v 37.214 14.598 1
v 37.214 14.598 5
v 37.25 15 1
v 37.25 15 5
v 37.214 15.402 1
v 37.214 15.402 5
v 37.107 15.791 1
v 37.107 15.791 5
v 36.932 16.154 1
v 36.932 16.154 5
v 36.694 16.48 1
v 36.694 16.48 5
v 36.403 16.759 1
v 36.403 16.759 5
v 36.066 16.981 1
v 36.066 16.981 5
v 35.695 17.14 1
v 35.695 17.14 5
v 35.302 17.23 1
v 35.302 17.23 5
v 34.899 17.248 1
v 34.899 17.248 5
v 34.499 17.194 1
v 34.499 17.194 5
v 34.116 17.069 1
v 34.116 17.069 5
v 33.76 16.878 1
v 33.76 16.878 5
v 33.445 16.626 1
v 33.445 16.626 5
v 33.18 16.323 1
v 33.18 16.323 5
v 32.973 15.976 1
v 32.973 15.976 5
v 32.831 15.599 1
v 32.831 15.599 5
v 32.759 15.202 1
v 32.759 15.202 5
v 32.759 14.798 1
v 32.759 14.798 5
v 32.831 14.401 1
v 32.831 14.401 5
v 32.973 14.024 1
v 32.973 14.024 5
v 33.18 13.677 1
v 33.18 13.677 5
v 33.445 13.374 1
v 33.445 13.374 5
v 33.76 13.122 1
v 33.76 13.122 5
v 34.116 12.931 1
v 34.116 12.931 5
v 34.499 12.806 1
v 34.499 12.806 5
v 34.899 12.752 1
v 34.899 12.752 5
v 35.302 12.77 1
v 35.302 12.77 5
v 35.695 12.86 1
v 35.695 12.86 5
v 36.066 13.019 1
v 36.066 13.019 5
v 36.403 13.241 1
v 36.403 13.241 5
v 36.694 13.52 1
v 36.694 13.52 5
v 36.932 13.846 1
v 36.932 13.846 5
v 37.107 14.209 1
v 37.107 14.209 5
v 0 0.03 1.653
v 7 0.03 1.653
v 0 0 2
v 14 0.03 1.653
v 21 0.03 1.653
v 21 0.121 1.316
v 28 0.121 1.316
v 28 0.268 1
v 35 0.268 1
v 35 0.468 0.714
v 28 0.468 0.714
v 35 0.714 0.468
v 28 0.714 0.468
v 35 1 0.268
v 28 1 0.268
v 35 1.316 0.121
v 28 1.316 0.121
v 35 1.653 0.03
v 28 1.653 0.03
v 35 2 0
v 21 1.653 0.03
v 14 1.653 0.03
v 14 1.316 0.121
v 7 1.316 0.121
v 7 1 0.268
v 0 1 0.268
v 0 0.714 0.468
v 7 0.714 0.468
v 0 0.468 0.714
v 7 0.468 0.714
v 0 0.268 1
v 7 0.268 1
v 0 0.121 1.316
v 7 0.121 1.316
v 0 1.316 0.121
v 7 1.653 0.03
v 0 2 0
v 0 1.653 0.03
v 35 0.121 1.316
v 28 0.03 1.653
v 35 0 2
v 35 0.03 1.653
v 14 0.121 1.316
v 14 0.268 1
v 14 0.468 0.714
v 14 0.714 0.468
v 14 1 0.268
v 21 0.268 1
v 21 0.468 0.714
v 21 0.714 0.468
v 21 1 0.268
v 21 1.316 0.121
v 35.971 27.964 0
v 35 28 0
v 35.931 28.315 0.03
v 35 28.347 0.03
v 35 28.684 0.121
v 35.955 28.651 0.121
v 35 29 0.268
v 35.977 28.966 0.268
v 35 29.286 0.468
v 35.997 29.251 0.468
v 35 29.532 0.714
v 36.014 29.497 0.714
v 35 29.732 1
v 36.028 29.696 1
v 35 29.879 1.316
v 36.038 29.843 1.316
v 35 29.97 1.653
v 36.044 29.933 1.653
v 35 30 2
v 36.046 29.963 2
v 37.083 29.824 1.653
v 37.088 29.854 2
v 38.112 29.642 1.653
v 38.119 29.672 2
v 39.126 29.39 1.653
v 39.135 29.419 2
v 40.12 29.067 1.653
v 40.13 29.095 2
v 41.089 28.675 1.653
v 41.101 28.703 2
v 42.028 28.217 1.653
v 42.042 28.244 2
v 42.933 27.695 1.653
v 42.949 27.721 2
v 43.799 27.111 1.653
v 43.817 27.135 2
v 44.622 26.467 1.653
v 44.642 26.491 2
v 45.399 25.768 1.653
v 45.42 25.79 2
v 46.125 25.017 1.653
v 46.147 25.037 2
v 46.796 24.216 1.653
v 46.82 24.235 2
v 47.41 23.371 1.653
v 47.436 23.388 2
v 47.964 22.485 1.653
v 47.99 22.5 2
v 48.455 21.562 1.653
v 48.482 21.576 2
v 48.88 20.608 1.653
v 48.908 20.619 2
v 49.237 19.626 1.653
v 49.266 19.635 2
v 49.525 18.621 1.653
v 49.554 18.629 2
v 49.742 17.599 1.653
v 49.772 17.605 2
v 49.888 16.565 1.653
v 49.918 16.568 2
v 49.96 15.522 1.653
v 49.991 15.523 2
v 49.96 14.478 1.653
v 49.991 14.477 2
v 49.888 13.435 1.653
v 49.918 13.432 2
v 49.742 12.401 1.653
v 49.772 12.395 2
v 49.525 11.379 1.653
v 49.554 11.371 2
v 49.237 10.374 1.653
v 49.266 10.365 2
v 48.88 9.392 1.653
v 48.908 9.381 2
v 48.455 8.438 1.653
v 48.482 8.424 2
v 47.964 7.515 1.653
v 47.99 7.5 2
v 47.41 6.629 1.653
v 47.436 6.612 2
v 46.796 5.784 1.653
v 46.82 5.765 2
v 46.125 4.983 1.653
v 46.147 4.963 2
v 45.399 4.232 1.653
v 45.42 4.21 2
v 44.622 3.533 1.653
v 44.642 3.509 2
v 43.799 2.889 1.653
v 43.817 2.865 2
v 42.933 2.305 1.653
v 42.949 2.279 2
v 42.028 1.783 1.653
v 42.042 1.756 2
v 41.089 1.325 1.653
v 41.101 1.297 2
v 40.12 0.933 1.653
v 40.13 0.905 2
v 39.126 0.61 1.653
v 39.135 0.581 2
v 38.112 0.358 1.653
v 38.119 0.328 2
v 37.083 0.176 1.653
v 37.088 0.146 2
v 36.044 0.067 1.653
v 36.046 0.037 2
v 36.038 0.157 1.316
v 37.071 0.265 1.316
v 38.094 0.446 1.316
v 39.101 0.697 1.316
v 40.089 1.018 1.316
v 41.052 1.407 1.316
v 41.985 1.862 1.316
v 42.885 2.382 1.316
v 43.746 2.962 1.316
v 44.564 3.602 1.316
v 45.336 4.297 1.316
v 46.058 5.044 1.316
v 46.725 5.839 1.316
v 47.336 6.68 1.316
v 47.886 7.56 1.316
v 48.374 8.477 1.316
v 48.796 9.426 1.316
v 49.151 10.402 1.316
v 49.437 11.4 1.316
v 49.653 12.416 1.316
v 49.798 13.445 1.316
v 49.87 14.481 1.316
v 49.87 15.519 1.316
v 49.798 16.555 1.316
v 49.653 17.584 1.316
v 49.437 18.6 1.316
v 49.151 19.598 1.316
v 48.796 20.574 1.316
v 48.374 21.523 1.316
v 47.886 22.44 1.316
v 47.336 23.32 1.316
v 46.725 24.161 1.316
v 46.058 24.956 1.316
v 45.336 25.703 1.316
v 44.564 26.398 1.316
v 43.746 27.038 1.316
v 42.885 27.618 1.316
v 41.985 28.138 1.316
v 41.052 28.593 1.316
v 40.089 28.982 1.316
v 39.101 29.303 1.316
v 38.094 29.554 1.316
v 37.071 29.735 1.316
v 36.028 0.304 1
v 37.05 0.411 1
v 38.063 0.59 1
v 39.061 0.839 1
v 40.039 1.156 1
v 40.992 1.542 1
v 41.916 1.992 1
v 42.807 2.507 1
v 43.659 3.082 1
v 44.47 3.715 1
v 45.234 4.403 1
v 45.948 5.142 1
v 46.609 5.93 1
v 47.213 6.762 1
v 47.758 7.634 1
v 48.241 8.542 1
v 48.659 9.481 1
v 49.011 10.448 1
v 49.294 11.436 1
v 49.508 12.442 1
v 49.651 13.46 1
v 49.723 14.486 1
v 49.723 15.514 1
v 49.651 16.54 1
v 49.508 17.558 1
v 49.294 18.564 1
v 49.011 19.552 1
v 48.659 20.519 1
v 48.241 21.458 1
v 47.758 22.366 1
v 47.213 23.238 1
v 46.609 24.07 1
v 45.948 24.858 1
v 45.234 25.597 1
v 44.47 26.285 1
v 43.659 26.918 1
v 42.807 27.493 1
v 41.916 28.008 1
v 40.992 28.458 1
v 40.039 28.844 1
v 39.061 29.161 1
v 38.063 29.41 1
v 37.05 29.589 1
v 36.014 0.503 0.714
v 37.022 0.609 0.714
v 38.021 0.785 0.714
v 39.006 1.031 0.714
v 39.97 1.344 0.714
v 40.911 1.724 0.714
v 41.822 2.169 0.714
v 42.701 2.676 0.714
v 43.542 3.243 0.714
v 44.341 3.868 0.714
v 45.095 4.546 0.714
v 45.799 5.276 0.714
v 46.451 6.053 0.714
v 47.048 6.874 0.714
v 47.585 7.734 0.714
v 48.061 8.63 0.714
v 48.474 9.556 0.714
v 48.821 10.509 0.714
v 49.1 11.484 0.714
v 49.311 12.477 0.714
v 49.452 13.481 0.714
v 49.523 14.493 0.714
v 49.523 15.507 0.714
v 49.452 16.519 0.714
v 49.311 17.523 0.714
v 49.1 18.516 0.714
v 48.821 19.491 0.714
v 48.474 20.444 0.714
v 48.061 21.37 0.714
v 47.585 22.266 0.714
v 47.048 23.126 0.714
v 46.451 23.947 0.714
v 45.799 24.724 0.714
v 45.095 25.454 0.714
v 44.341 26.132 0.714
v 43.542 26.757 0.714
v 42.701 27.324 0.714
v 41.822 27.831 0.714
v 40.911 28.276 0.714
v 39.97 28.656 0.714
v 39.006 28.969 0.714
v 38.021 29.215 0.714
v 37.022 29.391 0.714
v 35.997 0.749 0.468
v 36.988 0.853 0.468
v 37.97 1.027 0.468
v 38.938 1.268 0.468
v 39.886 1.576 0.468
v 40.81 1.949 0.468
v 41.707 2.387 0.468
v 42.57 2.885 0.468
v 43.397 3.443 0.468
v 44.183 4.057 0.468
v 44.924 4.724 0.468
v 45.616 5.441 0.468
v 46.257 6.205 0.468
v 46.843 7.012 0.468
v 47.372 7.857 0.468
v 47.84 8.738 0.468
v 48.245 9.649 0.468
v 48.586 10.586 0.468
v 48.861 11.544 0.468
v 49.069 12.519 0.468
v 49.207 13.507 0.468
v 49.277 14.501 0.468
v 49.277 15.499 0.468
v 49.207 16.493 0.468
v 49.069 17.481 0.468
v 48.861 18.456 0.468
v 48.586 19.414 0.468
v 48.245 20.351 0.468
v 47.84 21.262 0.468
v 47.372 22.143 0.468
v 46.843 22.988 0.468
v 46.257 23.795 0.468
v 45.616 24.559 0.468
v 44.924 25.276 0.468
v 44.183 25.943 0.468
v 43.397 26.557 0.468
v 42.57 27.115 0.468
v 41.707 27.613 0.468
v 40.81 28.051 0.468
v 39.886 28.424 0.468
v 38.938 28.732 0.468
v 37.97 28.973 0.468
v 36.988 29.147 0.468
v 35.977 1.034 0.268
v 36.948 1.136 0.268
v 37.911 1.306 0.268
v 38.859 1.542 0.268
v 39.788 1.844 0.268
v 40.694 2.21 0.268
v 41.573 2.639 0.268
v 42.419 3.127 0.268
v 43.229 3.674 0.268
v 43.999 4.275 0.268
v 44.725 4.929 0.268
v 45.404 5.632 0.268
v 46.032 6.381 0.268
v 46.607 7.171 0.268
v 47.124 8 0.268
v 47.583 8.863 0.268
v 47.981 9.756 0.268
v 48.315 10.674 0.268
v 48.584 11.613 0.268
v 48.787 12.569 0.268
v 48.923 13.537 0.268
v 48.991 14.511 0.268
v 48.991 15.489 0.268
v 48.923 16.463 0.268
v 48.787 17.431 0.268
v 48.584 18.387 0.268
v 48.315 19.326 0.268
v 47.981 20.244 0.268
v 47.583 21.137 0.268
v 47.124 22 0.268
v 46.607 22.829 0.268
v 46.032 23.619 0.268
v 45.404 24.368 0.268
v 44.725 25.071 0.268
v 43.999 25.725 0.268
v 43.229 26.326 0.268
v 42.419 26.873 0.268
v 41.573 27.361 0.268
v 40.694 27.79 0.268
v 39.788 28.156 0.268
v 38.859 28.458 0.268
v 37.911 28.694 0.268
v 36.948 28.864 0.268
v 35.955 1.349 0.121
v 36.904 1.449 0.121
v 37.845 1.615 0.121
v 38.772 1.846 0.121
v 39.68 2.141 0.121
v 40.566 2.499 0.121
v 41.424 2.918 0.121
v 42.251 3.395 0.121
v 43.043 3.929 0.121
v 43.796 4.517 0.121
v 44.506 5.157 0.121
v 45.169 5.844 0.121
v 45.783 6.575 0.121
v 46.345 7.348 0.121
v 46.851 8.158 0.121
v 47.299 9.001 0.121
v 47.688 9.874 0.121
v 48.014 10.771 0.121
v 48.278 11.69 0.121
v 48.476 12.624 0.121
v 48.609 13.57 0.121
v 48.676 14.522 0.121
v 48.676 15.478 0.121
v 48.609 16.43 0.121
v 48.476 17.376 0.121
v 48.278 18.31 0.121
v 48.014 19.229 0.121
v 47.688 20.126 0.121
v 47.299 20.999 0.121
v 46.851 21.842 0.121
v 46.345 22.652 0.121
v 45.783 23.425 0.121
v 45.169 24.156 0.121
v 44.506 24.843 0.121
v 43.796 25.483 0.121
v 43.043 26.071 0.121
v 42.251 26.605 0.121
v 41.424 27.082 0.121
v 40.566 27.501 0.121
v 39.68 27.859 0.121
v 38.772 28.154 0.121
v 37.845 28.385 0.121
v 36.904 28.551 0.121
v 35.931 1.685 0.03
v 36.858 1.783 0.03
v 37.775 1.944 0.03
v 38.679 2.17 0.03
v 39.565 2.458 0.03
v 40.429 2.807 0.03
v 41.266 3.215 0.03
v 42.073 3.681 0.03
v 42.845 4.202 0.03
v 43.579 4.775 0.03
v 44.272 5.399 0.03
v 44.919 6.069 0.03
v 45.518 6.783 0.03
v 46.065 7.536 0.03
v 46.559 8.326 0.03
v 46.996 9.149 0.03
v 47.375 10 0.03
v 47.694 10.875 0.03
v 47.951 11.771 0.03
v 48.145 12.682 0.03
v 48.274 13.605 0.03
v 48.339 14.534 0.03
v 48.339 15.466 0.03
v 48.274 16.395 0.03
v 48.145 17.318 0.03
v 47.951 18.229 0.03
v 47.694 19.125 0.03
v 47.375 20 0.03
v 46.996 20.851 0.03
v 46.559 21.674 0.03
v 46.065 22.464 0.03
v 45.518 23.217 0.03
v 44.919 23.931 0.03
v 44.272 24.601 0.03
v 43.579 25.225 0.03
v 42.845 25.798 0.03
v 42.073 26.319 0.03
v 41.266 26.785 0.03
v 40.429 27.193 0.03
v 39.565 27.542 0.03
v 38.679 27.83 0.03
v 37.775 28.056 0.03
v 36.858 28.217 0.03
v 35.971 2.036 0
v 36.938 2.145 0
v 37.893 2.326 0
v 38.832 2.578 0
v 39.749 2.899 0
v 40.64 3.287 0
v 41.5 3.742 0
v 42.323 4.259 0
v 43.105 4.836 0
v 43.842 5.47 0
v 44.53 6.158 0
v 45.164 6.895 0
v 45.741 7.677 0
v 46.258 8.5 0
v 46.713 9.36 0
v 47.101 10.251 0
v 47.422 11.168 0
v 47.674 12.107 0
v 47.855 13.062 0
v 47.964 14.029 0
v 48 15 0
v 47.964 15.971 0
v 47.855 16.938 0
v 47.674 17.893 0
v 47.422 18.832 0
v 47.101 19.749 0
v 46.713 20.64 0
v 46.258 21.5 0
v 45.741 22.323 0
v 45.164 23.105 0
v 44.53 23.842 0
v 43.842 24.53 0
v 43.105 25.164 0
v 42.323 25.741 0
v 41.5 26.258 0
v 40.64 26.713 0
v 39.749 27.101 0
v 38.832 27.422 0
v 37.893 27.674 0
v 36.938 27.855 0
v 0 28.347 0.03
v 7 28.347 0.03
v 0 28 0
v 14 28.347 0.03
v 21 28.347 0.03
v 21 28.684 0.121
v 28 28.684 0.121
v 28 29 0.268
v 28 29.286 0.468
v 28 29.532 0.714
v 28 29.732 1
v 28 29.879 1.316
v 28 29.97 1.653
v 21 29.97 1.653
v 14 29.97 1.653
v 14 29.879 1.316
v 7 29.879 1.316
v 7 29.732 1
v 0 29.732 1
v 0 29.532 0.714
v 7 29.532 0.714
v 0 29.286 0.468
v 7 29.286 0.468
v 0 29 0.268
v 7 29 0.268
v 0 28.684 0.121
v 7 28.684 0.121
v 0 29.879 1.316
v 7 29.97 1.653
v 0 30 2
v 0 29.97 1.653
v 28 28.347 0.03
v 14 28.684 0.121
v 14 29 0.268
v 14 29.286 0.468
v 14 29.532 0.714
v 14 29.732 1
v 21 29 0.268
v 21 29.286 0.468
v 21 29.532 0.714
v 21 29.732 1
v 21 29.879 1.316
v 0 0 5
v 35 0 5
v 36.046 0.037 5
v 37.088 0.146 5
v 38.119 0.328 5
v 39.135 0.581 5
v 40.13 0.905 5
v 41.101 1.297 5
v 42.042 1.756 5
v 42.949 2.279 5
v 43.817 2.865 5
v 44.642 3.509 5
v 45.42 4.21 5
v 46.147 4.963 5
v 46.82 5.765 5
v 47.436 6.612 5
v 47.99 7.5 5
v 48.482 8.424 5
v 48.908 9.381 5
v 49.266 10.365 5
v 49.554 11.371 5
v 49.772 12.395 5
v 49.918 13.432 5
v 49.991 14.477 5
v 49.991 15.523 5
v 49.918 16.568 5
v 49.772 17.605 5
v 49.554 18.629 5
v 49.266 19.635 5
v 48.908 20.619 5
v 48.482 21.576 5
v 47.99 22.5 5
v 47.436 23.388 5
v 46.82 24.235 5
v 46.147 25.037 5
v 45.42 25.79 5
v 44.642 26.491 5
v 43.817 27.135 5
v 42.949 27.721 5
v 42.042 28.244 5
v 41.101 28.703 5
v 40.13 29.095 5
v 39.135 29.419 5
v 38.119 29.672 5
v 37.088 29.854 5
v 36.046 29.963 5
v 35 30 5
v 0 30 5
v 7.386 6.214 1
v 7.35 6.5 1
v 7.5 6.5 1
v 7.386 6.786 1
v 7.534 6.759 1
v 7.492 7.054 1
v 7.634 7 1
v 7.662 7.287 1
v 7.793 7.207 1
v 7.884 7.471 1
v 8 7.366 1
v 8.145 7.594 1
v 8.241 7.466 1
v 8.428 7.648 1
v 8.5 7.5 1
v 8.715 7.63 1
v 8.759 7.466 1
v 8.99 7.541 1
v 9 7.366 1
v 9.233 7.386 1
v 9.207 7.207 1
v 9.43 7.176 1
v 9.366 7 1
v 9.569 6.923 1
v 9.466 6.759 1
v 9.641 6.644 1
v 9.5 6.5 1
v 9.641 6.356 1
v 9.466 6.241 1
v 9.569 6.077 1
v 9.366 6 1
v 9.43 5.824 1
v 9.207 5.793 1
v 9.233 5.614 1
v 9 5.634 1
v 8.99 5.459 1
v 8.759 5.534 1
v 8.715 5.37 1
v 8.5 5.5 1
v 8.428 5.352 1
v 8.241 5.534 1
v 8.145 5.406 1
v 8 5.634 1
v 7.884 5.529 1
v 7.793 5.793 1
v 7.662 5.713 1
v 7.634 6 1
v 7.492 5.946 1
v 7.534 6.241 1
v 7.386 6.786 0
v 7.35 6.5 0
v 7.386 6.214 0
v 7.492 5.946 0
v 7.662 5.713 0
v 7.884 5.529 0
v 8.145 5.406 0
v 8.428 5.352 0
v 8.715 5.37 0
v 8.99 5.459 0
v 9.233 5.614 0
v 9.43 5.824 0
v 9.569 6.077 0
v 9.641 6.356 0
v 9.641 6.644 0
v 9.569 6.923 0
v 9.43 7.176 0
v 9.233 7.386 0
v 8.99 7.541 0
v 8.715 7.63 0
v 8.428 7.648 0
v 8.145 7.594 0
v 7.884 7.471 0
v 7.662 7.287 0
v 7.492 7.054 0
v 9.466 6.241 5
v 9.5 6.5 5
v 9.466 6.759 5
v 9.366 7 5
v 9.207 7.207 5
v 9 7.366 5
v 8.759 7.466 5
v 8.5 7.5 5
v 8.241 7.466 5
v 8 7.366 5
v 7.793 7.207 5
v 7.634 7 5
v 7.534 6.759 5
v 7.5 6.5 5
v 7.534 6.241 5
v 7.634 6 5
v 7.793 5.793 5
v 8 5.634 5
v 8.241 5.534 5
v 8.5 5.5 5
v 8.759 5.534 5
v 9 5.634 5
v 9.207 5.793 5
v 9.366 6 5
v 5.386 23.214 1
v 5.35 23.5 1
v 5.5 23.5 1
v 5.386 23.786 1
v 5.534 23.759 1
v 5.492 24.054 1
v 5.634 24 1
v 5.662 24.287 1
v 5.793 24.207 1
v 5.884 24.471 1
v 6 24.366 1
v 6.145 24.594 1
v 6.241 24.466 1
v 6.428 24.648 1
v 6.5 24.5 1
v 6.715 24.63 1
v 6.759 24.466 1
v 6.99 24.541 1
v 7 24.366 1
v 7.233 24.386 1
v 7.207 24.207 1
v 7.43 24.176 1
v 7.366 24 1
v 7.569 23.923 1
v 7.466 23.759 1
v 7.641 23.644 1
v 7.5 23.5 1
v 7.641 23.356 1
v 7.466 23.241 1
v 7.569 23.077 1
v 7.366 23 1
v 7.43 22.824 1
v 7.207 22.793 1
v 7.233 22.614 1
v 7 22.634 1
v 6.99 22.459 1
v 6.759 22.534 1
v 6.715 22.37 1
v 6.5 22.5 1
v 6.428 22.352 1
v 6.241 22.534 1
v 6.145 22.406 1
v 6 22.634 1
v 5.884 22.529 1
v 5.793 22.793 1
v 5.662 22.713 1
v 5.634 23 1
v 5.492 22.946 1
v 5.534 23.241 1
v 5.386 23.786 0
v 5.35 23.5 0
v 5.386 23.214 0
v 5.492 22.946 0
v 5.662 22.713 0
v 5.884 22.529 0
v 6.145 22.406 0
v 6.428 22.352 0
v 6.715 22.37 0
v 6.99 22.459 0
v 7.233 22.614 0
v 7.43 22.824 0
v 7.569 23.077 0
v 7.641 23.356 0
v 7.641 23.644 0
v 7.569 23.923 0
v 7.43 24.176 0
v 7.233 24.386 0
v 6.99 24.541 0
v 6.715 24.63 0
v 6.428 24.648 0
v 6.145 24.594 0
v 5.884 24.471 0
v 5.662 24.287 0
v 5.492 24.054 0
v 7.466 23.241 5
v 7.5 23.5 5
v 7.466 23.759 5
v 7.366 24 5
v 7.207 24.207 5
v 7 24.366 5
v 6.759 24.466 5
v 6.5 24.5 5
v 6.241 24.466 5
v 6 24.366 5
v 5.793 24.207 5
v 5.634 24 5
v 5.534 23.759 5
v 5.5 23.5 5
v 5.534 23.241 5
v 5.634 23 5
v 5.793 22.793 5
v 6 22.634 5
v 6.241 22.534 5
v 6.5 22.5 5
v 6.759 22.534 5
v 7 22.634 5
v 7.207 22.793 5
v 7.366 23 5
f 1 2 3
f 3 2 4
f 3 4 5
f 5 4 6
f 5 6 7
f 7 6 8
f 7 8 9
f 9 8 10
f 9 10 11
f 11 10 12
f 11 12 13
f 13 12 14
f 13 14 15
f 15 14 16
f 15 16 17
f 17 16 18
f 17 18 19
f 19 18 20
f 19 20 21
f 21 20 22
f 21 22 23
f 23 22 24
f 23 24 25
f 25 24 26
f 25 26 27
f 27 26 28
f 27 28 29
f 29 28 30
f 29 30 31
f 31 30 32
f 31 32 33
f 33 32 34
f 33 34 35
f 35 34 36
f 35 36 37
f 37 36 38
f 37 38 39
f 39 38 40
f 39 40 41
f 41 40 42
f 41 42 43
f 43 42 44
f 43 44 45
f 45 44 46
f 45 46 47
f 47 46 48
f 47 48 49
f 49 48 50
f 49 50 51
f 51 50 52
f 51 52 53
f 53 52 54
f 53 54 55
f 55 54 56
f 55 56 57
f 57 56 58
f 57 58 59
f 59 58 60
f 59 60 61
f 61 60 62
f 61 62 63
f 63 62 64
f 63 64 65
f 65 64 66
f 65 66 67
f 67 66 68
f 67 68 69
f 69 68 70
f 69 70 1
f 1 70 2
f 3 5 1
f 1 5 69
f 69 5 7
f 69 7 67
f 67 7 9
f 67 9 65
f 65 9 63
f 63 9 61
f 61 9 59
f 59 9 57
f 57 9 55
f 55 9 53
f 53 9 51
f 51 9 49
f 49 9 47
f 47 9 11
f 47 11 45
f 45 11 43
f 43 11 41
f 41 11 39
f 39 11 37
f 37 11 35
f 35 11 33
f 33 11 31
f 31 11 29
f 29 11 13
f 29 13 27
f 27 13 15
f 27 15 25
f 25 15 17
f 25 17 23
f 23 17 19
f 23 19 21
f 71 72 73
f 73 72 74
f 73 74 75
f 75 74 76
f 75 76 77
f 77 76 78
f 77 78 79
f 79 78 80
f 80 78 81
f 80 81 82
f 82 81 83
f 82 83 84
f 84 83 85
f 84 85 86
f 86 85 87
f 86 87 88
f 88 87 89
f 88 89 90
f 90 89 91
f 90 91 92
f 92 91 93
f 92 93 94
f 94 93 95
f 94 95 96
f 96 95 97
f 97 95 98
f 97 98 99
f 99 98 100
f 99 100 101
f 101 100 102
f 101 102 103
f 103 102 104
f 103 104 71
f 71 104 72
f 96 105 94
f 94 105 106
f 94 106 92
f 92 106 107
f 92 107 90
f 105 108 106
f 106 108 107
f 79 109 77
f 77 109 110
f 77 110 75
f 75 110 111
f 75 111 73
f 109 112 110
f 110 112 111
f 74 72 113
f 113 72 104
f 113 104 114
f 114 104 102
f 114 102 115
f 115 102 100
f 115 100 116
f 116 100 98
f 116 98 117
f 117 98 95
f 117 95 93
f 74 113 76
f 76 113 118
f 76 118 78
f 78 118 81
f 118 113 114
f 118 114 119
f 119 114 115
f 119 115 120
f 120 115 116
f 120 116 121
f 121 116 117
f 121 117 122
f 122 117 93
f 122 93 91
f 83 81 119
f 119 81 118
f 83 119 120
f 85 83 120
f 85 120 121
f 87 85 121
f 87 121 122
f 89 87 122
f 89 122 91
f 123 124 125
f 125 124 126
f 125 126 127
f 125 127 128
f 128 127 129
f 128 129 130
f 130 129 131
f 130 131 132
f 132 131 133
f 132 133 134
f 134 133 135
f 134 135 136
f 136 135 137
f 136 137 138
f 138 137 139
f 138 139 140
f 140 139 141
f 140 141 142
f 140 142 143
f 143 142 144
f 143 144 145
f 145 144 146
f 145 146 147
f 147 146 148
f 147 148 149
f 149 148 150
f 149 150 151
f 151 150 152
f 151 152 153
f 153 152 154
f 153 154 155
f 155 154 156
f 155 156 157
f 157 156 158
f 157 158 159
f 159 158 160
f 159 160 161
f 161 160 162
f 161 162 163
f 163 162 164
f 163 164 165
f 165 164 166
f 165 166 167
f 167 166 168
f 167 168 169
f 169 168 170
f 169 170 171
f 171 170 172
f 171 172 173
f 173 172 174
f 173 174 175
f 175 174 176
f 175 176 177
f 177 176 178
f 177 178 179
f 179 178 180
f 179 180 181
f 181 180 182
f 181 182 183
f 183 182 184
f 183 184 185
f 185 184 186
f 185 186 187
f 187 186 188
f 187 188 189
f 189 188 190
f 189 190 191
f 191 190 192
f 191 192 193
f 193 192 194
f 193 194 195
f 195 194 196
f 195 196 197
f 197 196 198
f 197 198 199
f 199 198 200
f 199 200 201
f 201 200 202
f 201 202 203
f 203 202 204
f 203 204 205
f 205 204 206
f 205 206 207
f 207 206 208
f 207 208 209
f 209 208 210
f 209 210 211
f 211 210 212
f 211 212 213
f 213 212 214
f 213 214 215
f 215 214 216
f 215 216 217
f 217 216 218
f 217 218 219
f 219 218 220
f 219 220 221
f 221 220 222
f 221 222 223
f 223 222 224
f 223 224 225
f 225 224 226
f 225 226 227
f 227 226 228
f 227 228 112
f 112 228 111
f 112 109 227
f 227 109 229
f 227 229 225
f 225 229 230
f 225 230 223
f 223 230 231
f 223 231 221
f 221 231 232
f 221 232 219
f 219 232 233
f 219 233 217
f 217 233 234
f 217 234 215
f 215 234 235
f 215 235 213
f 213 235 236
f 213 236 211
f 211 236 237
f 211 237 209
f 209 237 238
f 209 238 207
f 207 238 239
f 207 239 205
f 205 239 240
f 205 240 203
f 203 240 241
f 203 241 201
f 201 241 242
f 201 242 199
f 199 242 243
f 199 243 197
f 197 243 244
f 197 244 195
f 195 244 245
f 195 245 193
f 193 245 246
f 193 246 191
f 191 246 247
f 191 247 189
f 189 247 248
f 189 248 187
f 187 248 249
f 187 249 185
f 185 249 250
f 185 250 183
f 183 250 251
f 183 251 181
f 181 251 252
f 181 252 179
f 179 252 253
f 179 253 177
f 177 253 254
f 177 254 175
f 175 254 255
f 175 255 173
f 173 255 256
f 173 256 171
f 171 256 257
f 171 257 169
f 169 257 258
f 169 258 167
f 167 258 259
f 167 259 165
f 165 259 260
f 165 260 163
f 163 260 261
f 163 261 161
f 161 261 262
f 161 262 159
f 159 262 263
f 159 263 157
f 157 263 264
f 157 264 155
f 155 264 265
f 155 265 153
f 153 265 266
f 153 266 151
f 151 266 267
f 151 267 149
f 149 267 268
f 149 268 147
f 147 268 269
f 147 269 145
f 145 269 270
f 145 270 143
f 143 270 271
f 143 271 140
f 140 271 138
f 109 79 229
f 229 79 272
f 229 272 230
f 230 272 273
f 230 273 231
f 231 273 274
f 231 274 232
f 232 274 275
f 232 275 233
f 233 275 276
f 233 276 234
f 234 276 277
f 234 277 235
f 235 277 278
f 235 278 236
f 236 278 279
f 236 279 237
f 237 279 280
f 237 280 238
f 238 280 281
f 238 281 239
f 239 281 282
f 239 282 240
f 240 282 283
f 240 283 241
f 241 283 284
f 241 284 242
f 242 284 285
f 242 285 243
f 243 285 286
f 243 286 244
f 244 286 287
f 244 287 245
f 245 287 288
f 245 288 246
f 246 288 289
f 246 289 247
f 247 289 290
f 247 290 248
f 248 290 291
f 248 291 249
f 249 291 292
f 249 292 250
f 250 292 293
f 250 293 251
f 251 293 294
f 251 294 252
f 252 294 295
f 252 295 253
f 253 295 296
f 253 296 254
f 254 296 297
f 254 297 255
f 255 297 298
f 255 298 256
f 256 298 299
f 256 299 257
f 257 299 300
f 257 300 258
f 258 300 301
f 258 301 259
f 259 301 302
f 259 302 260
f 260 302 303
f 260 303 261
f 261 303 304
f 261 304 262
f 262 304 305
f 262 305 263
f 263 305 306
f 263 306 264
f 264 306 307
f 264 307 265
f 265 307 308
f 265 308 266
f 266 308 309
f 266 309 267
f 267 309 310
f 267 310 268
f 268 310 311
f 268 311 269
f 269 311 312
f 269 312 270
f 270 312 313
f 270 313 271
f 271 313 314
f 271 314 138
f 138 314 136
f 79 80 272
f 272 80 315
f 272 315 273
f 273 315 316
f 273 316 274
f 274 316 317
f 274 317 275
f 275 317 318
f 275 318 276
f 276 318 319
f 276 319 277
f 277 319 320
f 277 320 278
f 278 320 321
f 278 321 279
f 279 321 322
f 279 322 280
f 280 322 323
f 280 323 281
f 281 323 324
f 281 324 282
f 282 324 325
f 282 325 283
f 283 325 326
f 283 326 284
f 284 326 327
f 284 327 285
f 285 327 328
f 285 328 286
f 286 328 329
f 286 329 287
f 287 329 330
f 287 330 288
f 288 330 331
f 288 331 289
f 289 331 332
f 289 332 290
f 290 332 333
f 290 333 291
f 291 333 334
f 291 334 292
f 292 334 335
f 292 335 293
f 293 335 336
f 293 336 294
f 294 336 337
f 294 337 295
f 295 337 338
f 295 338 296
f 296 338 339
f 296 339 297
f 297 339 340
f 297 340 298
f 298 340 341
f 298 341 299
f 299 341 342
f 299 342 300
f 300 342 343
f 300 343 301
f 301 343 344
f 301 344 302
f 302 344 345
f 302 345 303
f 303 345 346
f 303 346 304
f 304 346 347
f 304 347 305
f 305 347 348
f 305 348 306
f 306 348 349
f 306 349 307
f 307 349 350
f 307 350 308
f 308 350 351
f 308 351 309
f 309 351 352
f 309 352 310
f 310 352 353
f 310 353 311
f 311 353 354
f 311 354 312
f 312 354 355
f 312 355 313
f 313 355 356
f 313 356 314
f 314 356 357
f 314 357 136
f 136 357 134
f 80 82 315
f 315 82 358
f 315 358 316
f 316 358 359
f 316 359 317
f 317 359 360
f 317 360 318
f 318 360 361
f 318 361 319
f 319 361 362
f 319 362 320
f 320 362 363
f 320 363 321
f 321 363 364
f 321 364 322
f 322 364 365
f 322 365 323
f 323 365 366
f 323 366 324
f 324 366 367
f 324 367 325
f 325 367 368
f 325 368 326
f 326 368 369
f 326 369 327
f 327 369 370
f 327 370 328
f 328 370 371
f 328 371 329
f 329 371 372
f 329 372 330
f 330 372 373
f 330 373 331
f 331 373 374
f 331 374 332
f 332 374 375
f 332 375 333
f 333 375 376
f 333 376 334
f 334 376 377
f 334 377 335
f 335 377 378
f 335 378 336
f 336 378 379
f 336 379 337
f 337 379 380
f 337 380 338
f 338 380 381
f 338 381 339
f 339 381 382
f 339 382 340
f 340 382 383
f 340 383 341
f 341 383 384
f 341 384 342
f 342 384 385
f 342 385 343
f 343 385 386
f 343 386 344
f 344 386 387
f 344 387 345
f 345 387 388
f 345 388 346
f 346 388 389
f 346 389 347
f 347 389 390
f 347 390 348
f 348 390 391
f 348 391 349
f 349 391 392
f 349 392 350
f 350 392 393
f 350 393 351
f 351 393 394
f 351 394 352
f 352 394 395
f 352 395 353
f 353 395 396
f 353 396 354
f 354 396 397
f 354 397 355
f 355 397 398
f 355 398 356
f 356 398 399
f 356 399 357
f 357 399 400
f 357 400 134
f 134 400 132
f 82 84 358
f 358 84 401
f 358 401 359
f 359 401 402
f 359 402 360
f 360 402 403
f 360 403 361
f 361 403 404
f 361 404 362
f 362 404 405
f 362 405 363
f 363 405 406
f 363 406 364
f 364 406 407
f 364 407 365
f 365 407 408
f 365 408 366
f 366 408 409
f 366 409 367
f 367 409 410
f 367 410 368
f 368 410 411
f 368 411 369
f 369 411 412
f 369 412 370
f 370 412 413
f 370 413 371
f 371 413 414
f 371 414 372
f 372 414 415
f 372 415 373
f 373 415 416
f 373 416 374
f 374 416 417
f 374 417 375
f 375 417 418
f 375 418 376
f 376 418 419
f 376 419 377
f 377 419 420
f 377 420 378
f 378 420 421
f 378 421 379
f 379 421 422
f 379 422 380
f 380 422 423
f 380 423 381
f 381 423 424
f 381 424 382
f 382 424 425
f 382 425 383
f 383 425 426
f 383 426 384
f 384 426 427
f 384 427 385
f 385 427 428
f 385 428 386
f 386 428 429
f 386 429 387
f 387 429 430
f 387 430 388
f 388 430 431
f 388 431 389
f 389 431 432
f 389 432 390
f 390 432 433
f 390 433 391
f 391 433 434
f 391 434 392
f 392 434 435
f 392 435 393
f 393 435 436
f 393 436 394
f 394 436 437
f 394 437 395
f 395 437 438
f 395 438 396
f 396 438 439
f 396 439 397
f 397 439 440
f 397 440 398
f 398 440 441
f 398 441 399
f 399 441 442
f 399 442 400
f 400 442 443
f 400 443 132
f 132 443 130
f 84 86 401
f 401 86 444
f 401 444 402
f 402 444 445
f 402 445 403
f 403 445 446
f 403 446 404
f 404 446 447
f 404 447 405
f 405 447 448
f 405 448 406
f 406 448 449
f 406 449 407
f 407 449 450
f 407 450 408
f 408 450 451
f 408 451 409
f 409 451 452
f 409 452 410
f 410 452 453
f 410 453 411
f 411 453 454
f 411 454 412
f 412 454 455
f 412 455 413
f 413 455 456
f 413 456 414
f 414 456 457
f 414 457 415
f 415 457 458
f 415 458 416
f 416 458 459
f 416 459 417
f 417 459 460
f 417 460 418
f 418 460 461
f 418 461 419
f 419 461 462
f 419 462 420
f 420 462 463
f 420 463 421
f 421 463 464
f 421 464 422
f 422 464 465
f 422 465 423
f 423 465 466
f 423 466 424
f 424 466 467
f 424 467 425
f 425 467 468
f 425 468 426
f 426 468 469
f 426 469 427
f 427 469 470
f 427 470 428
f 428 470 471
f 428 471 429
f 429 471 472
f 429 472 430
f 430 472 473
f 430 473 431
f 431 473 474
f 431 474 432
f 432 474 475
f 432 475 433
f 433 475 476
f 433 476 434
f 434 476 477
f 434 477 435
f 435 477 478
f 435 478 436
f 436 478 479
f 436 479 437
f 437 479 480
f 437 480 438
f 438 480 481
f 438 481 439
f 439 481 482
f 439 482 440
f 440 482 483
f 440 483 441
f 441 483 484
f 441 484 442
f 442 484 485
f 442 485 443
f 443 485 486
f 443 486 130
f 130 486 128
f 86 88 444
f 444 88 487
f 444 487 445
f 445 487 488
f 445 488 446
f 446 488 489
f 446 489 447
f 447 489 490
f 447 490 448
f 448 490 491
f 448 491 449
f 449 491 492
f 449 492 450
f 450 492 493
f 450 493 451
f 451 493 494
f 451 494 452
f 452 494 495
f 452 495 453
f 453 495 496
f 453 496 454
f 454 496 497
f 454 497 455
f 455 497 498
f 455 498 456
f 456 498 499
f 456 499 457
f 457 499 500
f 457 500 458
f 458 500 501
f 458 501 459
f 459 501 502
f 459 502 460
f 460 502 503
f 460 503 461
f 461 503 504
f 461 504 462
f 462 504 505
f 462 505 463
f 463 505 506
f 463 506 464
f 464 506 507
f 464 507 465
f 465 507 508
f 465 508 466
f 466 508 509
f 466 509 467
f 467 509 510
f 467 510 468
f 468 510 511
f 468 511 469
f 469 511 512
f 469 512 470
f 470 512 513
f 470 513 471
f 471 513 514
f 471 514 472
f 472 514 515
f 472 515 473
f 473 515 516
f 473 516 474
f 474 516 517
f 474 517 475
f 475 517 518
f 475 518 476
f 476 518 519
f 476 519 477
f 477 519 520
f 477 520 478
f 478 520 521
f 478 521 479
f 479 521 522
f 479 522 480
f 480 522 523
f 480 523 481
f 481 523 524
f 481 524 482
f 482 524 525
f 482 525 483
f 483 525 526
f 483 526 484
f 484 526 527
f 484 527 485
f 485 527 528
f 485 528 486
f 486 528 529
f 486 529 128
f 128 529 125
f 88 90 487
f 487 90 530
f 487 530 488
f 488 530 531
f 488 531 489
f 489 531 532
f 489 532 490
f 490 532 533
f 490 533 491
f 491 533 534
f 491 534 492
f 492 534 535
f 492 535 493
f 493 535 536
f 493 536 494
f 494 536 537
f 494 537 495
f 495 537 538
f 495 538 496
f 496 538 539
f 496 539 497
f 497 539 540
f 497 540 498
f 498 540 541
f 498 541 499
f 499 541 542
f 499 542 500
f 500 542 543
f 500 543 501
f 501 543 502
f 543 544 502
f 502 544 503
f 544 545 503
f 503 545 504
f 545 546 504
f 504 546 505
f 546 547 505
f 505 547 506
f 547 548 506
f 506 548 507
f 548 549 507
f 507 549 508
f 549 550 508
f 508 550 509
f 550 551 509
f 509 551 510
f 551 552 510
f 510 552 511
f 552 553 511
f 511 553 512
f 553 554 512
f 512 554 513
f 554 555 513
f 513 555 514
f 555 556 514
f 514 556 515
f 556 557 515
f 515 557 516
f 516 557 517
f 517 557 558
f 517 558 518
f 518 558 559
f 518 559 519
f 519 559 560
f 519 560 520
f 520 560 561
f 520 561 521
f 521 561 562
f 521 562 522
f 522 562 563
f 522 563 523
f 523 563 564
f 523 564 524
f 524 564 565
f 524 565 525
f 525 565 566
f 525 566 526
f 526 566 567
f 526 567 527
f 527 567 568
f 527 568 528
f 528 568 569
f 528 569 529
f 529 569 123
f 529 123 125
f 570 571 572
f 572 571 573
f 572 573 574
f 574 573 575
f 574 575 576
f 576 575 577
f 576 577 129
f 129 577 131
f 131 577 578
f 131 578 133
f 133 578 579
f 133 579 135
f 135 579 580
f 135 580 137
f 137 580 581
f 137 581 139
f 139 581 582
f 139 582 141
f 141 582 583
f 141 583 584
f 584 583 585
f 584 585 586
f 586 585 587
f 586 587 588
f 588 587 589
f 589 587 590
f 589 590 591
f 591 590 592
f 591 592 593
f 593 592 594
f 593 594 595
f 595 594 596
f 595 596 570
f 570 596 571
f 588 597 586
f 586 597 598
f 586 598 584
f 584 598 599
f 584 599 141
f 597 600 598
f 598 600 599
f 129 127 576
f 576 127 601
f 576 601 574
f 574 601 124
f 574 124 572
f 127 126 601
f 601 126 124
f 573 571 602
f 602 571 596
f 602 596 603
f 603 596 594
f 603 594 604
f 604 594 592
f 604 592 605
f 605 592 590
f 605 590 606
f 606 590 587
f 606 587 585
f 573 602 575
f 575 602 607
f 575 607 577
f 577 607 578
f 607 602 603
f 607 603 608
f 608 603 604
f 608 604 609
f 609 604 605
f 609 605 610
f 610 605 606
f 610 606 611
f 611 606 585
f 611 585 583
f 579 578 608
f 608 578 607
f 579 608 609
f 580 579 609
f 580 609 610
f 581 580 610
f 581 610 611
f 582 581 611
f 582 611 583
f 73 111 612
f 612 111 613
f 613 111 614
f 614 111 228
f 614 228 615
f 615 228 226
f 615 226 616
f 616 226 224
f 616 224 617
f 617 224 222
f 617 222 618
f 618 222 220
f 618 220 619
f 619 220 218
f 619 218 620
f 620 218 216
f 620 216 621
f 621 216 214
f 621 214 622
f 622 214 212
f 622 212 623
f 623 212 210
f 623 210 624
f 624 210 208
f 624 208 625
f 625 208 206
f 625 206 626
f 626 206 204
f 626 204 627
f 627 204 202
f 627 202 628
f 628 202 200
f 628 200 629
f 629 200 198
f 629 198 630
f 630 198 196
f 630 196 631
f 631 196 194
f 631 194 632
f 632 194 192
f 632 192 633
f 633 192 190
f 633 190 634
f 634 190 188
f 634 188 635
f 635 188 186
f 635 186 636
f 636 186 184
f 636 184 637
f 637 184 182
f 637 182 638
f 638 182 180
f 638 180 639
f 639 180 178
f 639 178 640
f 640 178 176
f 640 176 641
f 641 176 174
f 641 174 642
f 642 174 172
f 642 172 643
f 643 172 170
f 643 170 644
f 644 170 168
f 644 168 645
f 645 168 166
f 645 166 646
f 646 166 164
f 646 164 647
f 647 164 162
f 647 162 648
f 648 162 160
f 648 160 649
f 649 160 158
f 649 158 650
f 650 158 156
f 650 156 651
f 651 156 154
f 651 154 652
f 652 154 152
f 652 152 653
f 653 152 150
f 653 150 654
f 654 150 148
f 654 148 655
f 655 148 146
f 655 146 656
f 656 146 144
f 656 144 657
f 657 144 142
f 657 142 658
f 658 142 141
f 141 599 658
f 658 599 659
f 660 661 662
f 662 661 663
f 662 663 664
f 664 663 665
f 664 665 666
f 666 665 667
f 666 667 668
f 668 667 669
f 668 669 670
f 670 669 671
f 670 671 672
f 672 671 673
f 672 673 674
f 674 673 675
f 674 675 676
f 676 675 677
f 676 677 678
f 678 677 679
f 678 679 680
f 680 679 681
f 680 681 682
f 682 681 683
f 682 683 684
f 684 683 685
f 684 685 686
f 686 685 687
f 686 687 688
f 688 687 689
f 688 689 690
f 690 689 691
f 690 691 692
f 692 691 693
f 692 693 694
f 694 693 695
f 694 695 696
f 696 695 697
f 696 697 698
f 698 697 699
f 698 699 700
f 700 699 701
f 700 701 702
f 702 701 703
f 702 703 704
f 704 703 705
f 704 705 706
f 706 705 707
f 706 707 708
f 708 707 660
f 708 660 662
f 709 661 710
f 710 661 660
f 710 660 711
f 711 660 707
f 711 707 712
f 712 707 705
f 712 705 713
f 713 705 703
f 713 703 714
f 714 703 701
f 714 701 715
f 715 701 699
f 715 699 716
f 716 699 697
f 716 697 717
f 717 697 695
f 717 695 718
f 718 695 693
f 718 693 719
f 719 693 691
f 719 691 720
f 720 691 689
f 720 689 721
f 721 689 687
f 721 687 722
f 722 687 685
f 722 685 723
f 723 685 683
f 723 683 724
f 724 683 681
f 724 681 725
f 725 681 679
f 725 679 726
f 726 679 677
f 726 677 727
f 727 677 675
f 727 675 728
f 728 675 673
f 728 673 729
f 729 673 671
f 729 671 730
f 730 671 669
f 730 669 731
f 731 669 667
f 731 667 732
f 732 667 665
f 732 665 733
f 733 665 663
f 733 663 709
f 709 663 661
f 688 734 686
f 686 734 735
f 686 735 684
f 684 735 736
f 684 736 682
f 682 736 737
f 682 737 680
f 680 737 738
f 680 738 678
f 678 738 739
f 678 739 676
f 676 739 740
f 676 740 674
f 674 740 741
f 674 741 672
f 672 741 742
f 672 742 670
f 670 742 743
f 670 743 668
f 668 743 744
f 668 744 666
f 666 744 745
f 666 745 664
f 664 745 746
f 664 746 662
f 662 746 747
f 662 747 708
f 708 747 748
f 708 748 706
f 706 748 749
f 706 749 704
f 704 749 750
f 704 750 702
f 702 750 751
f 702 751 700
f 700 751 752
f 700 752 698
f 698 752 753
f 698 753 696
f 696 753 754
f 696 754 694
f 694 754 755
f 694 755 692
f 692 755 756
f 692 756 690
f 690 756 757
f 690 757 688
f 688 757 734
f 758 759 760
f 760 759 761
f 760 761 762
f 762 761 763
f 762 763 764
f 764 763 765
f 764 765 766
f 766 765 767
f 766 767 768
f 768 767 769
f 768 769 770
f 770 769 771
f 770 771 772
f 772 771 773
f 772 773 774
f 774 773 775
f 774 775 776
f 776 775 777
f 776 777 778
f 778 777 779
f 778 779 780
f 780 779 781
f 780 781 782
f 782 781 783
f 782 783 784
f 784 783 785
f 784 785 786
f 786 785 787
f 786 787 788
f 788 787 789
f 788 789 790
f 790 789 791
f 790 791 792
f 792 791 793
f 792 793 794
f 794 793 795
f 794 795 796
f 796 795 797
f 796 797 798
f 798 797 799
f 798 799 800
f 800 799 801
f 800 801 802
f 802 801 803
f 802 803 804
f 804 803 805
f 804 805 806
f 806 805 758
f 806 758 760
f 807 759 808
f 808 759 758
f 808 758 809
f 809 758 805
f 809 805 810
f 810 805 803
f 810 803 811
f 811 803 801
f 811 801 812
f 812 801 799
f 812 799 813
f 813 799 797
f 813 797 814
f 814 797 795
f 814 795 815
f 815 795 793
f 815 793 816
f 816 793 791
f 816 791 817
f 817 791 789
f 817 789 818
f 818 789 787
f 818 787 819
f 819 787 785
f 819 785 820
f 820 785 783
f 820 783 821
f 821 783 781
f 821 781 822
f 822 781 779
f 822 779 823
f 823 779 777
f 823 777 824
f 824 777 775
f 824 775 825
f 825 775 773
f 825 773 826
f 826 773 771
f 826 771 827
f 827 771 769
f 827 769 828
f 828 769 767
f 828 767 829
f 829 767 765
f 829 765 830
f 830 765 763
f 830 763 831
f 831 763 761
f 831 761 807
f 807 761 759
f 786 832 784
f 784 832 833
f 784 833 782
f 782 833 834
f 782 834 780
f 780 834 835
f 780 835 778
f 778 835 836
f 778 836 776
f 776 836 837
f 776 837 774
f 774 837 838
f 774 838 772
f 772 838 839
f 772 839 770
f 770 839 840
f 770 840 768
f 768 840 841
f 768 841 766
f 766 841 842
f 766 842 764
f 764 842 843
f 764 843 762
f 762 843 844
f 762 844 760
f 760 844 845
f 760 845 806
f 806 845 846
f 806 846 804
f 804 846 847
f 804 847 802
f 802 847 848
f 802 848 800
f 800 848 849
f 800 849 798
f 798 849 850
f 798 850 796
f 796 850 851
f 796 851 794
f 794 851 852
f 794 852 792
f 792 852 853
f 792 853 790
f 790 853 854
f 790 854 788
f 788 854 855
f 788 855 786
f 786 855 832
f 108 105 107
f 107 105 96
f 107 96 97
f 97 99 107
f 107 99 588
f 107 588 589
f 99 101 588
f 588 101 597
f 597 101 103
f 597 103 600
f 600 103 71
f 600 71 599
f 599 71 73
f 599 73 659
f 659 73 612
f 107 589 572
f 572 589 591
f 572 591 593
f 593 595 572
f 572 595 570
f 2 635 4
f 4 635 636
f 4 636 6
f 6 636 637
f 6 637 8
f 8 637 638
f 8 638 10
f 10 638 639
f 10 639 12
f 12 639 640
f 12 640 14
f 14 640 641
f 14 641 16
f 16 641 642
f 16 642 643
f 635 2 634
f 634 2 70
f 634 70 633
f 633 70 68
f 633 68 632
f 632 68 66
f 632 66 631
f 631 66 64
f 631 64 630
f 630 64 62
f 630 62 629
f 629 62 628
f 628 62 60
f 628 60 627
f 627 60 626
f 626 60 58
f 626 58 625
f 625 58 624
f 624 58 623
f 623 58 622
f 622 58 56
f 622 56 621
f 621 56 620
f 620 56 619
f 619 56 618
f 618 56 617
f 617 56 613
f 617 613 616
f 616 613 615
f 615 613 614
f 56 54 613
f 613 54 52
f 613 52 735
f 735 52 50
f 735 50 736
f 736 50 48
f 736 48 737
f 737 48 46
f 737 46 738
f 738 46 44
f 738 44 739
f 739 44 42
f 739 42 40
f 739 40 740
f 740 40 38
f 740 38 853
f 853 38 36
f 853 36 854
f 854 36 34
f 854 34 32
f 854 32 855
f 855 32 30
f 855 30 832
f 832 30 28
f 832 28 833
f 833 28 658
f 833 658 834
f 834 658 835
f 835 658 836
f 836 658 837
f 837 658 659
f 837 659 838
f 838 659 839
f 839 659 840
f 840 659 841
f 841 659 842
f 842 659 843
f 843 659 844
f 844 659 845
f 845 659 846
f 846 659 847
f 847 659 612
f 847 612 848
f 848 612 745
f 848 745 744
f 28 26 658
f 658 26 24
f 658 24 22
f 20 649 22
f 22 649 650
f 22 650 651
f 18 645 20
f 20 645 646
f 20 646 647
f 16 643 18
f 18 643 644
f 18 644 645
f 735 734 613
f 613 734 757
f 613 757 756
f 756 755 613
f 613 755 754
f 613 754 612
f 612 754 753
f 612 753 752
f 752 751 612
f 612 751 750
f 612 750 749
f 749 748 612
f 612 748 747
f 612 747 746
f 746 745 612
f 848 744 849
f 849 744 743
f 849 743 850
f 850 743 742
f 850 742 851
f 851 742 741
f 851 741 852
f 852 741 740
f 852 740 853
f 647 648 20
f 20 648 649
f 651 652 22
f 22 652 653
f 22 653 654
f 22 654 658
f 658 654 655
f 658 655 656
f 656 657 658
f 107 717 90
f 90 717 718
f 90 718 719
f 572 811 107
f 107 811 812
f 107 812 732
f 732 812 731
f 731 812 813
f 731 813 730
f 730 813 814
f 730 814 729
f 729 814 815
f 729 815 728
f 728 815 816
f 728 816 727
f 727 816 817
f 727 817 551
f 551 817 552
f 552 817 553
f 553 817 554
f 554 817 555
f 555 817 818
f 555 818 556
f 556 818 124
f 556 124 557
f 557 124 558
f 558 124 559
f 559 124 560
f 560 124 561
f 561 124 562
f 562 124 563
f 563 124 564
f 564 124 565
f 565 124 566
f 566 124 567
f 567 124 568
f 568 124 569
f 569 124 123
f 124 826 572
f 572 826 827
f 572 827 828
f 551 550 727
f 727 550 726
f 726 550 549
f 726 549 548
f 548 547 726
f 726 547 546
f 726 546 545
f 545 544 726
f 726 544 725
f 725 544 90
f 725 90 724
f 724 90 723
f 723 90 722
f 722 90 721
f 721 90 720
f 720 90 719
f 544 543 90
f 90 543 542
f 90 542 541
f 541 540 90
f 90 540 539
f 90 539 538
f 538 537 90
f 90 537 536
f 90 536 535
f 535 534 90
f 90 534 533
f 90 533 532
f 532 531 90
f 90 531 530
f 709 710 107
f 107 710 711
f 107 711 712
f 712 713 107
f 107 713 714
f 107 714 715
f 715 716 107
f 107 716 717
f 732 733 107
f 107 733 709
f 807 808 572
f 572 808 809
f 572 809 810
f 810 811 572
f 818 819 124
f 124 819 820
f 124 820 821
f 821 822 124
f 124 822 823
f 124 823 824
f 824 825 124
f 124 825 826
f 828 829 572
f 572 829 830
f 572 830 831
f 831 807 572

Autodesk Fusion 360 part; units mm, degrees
sketch "Sketch1" plane through (0, 0, 0) normal (0, 0, 1) x (1, 0, 0)
  line L0 (0, 0) -> (35, 0)
  line L1 (35, 30) -> (0, 30)
  line L2 (0, 30) -> (0, 0)
  circle A0 centre (35, 15) radius 2.25
  arc A1 (35, 0) -> (35, 30) centre (35, 15) ccw
  line L3 (15, 0) -> (15, 30)
  line L4 (15, 15) -> (0, 30) construction
  line L5 (7.5, 22.5) -> (7.5, 30) construction
  line L6 (7.5, 22.5) -> (0, 22.5) construction
  circle A2 centre (6.5, 23.5) radius 1
  circle A3 centre (8.5, 23.5) radius 1 construction
  circle A4 centre (8.5, 6.5) radius 1
  line L7 (15, 0) -> (0, 15) construction
  line L8 (7.5, 7.5) -> (7.5, 0) construction
  line L9 (7.5, 7.5) -> (15, 7.5) construction
  point P0 (40, 0)
  point P1 (15, 15)
  dimension "d1" = 30
  dimension "d7" = 35
  dimension "d8" = 35
  dimension "d9" = 4.5
  dimension "d14" = 2
  dimension "d36" = 2
extrude "Extrude1" add sketch "Sketch1" along normal blind 5 contours L0 L1 L2 L3 | L0 L1 A1 L3 | A0 | A2 | A4 makes body 1
hole "Hole1" at (8.5, 6.5, 0) at (6.5, 23.5, 0) direction (0, 0, 1) diameter 2 end through all counterbore diameter 2.3 counterbore depth 1 bodies 1 1
sketch "Sketch2" plane through (0, 0, 5) normal (0, 0, 1) x (-1, 0, 0)
  circle A0 centre (-8.5, -6.5) radius 1
  circle A1 centre (-6.5, -23.5) radius 1
  arc A2 (-35, 0) -> (-35, -30) centre (-35, -15) ccw
  line L0 (-35, -30) -> (0, -30)
  line L1 (0, -30) -> (0, 0)
  line L2 (0, 0) -> (-35, 0)
  circle A3 centre (-35, -15) radius 2.25
fillet "Fillet1" radius 2 3 edges at (17.5, 0, 0) (50, 15, 0) (17.5, 30, 0) on bodies 1
ref_plane "WorkPlane1" through (25, 15, 22.5) normal (0, 0, 1) x (1, 0, 0)
mirror "Mirror1" about plane through (25, 15, 22.5) normal (0, 0, 1) of bodies 1 makes body 2
extrude "Extrude2" cut sketch "Sketch2" against normal blind 4 contours A3 bodies 1
sketch "Sketch3" plane through (0, 0, 40) normal (0, 0, -1) x (1, 0, 0)
  circle A0 centre (8.5, -6.5) radius 1
  circle A1 centre (6.5, -23.5) radius 1
  arc A2 (35, -30) -> (35, 0) centre (35, -15) ccw
  line L0 (35, 0) -> (0, 0)
  line L1 (0, 0) -> (0, -30)
  line L2 (0, -30) -> (35, -30)
  line L3 (31.4, -14.9863) -> (24.6174, -26.7346)
  line L4 (35, -15) -> (24.8695, -28.0239) construction
  arc A3 (24.6174, -26.7346) -> (26.1812, -27.951) centre (25.4835, -27.2346) ccw
  line L5 (35.8992, -18.4859) -> (26.1812, -27.951)
  line L6 (31.4, -14.9863) -> (35.8992, -18.4859) construction
  arc A4 (35.8992, -18.4859) -> (31.4, -14.9863) centre (35, -15) ccw
  point P0 (35, -15)
  point P1 (35, -15)
  dimension "d30" = 2
  dimension "d31" = 5.7
  dimension "d32" = 16.5
  dimension "d33" = 7.2
extrude "Extrude3" cut sketch "Sketch3" against normal blind 1.5 contours L3 A3 L5 A4 bodies 2
hidden bodies 2
equation "d1 = breadth"
equation "breadth = 30 mm"
equation "length = 50 mm"
equation "d7 = length - d6"
equation "d8 = d7"
equation "d27 = ( 35 / 2 ) * 1 mm"
equation "d36 = d14"
